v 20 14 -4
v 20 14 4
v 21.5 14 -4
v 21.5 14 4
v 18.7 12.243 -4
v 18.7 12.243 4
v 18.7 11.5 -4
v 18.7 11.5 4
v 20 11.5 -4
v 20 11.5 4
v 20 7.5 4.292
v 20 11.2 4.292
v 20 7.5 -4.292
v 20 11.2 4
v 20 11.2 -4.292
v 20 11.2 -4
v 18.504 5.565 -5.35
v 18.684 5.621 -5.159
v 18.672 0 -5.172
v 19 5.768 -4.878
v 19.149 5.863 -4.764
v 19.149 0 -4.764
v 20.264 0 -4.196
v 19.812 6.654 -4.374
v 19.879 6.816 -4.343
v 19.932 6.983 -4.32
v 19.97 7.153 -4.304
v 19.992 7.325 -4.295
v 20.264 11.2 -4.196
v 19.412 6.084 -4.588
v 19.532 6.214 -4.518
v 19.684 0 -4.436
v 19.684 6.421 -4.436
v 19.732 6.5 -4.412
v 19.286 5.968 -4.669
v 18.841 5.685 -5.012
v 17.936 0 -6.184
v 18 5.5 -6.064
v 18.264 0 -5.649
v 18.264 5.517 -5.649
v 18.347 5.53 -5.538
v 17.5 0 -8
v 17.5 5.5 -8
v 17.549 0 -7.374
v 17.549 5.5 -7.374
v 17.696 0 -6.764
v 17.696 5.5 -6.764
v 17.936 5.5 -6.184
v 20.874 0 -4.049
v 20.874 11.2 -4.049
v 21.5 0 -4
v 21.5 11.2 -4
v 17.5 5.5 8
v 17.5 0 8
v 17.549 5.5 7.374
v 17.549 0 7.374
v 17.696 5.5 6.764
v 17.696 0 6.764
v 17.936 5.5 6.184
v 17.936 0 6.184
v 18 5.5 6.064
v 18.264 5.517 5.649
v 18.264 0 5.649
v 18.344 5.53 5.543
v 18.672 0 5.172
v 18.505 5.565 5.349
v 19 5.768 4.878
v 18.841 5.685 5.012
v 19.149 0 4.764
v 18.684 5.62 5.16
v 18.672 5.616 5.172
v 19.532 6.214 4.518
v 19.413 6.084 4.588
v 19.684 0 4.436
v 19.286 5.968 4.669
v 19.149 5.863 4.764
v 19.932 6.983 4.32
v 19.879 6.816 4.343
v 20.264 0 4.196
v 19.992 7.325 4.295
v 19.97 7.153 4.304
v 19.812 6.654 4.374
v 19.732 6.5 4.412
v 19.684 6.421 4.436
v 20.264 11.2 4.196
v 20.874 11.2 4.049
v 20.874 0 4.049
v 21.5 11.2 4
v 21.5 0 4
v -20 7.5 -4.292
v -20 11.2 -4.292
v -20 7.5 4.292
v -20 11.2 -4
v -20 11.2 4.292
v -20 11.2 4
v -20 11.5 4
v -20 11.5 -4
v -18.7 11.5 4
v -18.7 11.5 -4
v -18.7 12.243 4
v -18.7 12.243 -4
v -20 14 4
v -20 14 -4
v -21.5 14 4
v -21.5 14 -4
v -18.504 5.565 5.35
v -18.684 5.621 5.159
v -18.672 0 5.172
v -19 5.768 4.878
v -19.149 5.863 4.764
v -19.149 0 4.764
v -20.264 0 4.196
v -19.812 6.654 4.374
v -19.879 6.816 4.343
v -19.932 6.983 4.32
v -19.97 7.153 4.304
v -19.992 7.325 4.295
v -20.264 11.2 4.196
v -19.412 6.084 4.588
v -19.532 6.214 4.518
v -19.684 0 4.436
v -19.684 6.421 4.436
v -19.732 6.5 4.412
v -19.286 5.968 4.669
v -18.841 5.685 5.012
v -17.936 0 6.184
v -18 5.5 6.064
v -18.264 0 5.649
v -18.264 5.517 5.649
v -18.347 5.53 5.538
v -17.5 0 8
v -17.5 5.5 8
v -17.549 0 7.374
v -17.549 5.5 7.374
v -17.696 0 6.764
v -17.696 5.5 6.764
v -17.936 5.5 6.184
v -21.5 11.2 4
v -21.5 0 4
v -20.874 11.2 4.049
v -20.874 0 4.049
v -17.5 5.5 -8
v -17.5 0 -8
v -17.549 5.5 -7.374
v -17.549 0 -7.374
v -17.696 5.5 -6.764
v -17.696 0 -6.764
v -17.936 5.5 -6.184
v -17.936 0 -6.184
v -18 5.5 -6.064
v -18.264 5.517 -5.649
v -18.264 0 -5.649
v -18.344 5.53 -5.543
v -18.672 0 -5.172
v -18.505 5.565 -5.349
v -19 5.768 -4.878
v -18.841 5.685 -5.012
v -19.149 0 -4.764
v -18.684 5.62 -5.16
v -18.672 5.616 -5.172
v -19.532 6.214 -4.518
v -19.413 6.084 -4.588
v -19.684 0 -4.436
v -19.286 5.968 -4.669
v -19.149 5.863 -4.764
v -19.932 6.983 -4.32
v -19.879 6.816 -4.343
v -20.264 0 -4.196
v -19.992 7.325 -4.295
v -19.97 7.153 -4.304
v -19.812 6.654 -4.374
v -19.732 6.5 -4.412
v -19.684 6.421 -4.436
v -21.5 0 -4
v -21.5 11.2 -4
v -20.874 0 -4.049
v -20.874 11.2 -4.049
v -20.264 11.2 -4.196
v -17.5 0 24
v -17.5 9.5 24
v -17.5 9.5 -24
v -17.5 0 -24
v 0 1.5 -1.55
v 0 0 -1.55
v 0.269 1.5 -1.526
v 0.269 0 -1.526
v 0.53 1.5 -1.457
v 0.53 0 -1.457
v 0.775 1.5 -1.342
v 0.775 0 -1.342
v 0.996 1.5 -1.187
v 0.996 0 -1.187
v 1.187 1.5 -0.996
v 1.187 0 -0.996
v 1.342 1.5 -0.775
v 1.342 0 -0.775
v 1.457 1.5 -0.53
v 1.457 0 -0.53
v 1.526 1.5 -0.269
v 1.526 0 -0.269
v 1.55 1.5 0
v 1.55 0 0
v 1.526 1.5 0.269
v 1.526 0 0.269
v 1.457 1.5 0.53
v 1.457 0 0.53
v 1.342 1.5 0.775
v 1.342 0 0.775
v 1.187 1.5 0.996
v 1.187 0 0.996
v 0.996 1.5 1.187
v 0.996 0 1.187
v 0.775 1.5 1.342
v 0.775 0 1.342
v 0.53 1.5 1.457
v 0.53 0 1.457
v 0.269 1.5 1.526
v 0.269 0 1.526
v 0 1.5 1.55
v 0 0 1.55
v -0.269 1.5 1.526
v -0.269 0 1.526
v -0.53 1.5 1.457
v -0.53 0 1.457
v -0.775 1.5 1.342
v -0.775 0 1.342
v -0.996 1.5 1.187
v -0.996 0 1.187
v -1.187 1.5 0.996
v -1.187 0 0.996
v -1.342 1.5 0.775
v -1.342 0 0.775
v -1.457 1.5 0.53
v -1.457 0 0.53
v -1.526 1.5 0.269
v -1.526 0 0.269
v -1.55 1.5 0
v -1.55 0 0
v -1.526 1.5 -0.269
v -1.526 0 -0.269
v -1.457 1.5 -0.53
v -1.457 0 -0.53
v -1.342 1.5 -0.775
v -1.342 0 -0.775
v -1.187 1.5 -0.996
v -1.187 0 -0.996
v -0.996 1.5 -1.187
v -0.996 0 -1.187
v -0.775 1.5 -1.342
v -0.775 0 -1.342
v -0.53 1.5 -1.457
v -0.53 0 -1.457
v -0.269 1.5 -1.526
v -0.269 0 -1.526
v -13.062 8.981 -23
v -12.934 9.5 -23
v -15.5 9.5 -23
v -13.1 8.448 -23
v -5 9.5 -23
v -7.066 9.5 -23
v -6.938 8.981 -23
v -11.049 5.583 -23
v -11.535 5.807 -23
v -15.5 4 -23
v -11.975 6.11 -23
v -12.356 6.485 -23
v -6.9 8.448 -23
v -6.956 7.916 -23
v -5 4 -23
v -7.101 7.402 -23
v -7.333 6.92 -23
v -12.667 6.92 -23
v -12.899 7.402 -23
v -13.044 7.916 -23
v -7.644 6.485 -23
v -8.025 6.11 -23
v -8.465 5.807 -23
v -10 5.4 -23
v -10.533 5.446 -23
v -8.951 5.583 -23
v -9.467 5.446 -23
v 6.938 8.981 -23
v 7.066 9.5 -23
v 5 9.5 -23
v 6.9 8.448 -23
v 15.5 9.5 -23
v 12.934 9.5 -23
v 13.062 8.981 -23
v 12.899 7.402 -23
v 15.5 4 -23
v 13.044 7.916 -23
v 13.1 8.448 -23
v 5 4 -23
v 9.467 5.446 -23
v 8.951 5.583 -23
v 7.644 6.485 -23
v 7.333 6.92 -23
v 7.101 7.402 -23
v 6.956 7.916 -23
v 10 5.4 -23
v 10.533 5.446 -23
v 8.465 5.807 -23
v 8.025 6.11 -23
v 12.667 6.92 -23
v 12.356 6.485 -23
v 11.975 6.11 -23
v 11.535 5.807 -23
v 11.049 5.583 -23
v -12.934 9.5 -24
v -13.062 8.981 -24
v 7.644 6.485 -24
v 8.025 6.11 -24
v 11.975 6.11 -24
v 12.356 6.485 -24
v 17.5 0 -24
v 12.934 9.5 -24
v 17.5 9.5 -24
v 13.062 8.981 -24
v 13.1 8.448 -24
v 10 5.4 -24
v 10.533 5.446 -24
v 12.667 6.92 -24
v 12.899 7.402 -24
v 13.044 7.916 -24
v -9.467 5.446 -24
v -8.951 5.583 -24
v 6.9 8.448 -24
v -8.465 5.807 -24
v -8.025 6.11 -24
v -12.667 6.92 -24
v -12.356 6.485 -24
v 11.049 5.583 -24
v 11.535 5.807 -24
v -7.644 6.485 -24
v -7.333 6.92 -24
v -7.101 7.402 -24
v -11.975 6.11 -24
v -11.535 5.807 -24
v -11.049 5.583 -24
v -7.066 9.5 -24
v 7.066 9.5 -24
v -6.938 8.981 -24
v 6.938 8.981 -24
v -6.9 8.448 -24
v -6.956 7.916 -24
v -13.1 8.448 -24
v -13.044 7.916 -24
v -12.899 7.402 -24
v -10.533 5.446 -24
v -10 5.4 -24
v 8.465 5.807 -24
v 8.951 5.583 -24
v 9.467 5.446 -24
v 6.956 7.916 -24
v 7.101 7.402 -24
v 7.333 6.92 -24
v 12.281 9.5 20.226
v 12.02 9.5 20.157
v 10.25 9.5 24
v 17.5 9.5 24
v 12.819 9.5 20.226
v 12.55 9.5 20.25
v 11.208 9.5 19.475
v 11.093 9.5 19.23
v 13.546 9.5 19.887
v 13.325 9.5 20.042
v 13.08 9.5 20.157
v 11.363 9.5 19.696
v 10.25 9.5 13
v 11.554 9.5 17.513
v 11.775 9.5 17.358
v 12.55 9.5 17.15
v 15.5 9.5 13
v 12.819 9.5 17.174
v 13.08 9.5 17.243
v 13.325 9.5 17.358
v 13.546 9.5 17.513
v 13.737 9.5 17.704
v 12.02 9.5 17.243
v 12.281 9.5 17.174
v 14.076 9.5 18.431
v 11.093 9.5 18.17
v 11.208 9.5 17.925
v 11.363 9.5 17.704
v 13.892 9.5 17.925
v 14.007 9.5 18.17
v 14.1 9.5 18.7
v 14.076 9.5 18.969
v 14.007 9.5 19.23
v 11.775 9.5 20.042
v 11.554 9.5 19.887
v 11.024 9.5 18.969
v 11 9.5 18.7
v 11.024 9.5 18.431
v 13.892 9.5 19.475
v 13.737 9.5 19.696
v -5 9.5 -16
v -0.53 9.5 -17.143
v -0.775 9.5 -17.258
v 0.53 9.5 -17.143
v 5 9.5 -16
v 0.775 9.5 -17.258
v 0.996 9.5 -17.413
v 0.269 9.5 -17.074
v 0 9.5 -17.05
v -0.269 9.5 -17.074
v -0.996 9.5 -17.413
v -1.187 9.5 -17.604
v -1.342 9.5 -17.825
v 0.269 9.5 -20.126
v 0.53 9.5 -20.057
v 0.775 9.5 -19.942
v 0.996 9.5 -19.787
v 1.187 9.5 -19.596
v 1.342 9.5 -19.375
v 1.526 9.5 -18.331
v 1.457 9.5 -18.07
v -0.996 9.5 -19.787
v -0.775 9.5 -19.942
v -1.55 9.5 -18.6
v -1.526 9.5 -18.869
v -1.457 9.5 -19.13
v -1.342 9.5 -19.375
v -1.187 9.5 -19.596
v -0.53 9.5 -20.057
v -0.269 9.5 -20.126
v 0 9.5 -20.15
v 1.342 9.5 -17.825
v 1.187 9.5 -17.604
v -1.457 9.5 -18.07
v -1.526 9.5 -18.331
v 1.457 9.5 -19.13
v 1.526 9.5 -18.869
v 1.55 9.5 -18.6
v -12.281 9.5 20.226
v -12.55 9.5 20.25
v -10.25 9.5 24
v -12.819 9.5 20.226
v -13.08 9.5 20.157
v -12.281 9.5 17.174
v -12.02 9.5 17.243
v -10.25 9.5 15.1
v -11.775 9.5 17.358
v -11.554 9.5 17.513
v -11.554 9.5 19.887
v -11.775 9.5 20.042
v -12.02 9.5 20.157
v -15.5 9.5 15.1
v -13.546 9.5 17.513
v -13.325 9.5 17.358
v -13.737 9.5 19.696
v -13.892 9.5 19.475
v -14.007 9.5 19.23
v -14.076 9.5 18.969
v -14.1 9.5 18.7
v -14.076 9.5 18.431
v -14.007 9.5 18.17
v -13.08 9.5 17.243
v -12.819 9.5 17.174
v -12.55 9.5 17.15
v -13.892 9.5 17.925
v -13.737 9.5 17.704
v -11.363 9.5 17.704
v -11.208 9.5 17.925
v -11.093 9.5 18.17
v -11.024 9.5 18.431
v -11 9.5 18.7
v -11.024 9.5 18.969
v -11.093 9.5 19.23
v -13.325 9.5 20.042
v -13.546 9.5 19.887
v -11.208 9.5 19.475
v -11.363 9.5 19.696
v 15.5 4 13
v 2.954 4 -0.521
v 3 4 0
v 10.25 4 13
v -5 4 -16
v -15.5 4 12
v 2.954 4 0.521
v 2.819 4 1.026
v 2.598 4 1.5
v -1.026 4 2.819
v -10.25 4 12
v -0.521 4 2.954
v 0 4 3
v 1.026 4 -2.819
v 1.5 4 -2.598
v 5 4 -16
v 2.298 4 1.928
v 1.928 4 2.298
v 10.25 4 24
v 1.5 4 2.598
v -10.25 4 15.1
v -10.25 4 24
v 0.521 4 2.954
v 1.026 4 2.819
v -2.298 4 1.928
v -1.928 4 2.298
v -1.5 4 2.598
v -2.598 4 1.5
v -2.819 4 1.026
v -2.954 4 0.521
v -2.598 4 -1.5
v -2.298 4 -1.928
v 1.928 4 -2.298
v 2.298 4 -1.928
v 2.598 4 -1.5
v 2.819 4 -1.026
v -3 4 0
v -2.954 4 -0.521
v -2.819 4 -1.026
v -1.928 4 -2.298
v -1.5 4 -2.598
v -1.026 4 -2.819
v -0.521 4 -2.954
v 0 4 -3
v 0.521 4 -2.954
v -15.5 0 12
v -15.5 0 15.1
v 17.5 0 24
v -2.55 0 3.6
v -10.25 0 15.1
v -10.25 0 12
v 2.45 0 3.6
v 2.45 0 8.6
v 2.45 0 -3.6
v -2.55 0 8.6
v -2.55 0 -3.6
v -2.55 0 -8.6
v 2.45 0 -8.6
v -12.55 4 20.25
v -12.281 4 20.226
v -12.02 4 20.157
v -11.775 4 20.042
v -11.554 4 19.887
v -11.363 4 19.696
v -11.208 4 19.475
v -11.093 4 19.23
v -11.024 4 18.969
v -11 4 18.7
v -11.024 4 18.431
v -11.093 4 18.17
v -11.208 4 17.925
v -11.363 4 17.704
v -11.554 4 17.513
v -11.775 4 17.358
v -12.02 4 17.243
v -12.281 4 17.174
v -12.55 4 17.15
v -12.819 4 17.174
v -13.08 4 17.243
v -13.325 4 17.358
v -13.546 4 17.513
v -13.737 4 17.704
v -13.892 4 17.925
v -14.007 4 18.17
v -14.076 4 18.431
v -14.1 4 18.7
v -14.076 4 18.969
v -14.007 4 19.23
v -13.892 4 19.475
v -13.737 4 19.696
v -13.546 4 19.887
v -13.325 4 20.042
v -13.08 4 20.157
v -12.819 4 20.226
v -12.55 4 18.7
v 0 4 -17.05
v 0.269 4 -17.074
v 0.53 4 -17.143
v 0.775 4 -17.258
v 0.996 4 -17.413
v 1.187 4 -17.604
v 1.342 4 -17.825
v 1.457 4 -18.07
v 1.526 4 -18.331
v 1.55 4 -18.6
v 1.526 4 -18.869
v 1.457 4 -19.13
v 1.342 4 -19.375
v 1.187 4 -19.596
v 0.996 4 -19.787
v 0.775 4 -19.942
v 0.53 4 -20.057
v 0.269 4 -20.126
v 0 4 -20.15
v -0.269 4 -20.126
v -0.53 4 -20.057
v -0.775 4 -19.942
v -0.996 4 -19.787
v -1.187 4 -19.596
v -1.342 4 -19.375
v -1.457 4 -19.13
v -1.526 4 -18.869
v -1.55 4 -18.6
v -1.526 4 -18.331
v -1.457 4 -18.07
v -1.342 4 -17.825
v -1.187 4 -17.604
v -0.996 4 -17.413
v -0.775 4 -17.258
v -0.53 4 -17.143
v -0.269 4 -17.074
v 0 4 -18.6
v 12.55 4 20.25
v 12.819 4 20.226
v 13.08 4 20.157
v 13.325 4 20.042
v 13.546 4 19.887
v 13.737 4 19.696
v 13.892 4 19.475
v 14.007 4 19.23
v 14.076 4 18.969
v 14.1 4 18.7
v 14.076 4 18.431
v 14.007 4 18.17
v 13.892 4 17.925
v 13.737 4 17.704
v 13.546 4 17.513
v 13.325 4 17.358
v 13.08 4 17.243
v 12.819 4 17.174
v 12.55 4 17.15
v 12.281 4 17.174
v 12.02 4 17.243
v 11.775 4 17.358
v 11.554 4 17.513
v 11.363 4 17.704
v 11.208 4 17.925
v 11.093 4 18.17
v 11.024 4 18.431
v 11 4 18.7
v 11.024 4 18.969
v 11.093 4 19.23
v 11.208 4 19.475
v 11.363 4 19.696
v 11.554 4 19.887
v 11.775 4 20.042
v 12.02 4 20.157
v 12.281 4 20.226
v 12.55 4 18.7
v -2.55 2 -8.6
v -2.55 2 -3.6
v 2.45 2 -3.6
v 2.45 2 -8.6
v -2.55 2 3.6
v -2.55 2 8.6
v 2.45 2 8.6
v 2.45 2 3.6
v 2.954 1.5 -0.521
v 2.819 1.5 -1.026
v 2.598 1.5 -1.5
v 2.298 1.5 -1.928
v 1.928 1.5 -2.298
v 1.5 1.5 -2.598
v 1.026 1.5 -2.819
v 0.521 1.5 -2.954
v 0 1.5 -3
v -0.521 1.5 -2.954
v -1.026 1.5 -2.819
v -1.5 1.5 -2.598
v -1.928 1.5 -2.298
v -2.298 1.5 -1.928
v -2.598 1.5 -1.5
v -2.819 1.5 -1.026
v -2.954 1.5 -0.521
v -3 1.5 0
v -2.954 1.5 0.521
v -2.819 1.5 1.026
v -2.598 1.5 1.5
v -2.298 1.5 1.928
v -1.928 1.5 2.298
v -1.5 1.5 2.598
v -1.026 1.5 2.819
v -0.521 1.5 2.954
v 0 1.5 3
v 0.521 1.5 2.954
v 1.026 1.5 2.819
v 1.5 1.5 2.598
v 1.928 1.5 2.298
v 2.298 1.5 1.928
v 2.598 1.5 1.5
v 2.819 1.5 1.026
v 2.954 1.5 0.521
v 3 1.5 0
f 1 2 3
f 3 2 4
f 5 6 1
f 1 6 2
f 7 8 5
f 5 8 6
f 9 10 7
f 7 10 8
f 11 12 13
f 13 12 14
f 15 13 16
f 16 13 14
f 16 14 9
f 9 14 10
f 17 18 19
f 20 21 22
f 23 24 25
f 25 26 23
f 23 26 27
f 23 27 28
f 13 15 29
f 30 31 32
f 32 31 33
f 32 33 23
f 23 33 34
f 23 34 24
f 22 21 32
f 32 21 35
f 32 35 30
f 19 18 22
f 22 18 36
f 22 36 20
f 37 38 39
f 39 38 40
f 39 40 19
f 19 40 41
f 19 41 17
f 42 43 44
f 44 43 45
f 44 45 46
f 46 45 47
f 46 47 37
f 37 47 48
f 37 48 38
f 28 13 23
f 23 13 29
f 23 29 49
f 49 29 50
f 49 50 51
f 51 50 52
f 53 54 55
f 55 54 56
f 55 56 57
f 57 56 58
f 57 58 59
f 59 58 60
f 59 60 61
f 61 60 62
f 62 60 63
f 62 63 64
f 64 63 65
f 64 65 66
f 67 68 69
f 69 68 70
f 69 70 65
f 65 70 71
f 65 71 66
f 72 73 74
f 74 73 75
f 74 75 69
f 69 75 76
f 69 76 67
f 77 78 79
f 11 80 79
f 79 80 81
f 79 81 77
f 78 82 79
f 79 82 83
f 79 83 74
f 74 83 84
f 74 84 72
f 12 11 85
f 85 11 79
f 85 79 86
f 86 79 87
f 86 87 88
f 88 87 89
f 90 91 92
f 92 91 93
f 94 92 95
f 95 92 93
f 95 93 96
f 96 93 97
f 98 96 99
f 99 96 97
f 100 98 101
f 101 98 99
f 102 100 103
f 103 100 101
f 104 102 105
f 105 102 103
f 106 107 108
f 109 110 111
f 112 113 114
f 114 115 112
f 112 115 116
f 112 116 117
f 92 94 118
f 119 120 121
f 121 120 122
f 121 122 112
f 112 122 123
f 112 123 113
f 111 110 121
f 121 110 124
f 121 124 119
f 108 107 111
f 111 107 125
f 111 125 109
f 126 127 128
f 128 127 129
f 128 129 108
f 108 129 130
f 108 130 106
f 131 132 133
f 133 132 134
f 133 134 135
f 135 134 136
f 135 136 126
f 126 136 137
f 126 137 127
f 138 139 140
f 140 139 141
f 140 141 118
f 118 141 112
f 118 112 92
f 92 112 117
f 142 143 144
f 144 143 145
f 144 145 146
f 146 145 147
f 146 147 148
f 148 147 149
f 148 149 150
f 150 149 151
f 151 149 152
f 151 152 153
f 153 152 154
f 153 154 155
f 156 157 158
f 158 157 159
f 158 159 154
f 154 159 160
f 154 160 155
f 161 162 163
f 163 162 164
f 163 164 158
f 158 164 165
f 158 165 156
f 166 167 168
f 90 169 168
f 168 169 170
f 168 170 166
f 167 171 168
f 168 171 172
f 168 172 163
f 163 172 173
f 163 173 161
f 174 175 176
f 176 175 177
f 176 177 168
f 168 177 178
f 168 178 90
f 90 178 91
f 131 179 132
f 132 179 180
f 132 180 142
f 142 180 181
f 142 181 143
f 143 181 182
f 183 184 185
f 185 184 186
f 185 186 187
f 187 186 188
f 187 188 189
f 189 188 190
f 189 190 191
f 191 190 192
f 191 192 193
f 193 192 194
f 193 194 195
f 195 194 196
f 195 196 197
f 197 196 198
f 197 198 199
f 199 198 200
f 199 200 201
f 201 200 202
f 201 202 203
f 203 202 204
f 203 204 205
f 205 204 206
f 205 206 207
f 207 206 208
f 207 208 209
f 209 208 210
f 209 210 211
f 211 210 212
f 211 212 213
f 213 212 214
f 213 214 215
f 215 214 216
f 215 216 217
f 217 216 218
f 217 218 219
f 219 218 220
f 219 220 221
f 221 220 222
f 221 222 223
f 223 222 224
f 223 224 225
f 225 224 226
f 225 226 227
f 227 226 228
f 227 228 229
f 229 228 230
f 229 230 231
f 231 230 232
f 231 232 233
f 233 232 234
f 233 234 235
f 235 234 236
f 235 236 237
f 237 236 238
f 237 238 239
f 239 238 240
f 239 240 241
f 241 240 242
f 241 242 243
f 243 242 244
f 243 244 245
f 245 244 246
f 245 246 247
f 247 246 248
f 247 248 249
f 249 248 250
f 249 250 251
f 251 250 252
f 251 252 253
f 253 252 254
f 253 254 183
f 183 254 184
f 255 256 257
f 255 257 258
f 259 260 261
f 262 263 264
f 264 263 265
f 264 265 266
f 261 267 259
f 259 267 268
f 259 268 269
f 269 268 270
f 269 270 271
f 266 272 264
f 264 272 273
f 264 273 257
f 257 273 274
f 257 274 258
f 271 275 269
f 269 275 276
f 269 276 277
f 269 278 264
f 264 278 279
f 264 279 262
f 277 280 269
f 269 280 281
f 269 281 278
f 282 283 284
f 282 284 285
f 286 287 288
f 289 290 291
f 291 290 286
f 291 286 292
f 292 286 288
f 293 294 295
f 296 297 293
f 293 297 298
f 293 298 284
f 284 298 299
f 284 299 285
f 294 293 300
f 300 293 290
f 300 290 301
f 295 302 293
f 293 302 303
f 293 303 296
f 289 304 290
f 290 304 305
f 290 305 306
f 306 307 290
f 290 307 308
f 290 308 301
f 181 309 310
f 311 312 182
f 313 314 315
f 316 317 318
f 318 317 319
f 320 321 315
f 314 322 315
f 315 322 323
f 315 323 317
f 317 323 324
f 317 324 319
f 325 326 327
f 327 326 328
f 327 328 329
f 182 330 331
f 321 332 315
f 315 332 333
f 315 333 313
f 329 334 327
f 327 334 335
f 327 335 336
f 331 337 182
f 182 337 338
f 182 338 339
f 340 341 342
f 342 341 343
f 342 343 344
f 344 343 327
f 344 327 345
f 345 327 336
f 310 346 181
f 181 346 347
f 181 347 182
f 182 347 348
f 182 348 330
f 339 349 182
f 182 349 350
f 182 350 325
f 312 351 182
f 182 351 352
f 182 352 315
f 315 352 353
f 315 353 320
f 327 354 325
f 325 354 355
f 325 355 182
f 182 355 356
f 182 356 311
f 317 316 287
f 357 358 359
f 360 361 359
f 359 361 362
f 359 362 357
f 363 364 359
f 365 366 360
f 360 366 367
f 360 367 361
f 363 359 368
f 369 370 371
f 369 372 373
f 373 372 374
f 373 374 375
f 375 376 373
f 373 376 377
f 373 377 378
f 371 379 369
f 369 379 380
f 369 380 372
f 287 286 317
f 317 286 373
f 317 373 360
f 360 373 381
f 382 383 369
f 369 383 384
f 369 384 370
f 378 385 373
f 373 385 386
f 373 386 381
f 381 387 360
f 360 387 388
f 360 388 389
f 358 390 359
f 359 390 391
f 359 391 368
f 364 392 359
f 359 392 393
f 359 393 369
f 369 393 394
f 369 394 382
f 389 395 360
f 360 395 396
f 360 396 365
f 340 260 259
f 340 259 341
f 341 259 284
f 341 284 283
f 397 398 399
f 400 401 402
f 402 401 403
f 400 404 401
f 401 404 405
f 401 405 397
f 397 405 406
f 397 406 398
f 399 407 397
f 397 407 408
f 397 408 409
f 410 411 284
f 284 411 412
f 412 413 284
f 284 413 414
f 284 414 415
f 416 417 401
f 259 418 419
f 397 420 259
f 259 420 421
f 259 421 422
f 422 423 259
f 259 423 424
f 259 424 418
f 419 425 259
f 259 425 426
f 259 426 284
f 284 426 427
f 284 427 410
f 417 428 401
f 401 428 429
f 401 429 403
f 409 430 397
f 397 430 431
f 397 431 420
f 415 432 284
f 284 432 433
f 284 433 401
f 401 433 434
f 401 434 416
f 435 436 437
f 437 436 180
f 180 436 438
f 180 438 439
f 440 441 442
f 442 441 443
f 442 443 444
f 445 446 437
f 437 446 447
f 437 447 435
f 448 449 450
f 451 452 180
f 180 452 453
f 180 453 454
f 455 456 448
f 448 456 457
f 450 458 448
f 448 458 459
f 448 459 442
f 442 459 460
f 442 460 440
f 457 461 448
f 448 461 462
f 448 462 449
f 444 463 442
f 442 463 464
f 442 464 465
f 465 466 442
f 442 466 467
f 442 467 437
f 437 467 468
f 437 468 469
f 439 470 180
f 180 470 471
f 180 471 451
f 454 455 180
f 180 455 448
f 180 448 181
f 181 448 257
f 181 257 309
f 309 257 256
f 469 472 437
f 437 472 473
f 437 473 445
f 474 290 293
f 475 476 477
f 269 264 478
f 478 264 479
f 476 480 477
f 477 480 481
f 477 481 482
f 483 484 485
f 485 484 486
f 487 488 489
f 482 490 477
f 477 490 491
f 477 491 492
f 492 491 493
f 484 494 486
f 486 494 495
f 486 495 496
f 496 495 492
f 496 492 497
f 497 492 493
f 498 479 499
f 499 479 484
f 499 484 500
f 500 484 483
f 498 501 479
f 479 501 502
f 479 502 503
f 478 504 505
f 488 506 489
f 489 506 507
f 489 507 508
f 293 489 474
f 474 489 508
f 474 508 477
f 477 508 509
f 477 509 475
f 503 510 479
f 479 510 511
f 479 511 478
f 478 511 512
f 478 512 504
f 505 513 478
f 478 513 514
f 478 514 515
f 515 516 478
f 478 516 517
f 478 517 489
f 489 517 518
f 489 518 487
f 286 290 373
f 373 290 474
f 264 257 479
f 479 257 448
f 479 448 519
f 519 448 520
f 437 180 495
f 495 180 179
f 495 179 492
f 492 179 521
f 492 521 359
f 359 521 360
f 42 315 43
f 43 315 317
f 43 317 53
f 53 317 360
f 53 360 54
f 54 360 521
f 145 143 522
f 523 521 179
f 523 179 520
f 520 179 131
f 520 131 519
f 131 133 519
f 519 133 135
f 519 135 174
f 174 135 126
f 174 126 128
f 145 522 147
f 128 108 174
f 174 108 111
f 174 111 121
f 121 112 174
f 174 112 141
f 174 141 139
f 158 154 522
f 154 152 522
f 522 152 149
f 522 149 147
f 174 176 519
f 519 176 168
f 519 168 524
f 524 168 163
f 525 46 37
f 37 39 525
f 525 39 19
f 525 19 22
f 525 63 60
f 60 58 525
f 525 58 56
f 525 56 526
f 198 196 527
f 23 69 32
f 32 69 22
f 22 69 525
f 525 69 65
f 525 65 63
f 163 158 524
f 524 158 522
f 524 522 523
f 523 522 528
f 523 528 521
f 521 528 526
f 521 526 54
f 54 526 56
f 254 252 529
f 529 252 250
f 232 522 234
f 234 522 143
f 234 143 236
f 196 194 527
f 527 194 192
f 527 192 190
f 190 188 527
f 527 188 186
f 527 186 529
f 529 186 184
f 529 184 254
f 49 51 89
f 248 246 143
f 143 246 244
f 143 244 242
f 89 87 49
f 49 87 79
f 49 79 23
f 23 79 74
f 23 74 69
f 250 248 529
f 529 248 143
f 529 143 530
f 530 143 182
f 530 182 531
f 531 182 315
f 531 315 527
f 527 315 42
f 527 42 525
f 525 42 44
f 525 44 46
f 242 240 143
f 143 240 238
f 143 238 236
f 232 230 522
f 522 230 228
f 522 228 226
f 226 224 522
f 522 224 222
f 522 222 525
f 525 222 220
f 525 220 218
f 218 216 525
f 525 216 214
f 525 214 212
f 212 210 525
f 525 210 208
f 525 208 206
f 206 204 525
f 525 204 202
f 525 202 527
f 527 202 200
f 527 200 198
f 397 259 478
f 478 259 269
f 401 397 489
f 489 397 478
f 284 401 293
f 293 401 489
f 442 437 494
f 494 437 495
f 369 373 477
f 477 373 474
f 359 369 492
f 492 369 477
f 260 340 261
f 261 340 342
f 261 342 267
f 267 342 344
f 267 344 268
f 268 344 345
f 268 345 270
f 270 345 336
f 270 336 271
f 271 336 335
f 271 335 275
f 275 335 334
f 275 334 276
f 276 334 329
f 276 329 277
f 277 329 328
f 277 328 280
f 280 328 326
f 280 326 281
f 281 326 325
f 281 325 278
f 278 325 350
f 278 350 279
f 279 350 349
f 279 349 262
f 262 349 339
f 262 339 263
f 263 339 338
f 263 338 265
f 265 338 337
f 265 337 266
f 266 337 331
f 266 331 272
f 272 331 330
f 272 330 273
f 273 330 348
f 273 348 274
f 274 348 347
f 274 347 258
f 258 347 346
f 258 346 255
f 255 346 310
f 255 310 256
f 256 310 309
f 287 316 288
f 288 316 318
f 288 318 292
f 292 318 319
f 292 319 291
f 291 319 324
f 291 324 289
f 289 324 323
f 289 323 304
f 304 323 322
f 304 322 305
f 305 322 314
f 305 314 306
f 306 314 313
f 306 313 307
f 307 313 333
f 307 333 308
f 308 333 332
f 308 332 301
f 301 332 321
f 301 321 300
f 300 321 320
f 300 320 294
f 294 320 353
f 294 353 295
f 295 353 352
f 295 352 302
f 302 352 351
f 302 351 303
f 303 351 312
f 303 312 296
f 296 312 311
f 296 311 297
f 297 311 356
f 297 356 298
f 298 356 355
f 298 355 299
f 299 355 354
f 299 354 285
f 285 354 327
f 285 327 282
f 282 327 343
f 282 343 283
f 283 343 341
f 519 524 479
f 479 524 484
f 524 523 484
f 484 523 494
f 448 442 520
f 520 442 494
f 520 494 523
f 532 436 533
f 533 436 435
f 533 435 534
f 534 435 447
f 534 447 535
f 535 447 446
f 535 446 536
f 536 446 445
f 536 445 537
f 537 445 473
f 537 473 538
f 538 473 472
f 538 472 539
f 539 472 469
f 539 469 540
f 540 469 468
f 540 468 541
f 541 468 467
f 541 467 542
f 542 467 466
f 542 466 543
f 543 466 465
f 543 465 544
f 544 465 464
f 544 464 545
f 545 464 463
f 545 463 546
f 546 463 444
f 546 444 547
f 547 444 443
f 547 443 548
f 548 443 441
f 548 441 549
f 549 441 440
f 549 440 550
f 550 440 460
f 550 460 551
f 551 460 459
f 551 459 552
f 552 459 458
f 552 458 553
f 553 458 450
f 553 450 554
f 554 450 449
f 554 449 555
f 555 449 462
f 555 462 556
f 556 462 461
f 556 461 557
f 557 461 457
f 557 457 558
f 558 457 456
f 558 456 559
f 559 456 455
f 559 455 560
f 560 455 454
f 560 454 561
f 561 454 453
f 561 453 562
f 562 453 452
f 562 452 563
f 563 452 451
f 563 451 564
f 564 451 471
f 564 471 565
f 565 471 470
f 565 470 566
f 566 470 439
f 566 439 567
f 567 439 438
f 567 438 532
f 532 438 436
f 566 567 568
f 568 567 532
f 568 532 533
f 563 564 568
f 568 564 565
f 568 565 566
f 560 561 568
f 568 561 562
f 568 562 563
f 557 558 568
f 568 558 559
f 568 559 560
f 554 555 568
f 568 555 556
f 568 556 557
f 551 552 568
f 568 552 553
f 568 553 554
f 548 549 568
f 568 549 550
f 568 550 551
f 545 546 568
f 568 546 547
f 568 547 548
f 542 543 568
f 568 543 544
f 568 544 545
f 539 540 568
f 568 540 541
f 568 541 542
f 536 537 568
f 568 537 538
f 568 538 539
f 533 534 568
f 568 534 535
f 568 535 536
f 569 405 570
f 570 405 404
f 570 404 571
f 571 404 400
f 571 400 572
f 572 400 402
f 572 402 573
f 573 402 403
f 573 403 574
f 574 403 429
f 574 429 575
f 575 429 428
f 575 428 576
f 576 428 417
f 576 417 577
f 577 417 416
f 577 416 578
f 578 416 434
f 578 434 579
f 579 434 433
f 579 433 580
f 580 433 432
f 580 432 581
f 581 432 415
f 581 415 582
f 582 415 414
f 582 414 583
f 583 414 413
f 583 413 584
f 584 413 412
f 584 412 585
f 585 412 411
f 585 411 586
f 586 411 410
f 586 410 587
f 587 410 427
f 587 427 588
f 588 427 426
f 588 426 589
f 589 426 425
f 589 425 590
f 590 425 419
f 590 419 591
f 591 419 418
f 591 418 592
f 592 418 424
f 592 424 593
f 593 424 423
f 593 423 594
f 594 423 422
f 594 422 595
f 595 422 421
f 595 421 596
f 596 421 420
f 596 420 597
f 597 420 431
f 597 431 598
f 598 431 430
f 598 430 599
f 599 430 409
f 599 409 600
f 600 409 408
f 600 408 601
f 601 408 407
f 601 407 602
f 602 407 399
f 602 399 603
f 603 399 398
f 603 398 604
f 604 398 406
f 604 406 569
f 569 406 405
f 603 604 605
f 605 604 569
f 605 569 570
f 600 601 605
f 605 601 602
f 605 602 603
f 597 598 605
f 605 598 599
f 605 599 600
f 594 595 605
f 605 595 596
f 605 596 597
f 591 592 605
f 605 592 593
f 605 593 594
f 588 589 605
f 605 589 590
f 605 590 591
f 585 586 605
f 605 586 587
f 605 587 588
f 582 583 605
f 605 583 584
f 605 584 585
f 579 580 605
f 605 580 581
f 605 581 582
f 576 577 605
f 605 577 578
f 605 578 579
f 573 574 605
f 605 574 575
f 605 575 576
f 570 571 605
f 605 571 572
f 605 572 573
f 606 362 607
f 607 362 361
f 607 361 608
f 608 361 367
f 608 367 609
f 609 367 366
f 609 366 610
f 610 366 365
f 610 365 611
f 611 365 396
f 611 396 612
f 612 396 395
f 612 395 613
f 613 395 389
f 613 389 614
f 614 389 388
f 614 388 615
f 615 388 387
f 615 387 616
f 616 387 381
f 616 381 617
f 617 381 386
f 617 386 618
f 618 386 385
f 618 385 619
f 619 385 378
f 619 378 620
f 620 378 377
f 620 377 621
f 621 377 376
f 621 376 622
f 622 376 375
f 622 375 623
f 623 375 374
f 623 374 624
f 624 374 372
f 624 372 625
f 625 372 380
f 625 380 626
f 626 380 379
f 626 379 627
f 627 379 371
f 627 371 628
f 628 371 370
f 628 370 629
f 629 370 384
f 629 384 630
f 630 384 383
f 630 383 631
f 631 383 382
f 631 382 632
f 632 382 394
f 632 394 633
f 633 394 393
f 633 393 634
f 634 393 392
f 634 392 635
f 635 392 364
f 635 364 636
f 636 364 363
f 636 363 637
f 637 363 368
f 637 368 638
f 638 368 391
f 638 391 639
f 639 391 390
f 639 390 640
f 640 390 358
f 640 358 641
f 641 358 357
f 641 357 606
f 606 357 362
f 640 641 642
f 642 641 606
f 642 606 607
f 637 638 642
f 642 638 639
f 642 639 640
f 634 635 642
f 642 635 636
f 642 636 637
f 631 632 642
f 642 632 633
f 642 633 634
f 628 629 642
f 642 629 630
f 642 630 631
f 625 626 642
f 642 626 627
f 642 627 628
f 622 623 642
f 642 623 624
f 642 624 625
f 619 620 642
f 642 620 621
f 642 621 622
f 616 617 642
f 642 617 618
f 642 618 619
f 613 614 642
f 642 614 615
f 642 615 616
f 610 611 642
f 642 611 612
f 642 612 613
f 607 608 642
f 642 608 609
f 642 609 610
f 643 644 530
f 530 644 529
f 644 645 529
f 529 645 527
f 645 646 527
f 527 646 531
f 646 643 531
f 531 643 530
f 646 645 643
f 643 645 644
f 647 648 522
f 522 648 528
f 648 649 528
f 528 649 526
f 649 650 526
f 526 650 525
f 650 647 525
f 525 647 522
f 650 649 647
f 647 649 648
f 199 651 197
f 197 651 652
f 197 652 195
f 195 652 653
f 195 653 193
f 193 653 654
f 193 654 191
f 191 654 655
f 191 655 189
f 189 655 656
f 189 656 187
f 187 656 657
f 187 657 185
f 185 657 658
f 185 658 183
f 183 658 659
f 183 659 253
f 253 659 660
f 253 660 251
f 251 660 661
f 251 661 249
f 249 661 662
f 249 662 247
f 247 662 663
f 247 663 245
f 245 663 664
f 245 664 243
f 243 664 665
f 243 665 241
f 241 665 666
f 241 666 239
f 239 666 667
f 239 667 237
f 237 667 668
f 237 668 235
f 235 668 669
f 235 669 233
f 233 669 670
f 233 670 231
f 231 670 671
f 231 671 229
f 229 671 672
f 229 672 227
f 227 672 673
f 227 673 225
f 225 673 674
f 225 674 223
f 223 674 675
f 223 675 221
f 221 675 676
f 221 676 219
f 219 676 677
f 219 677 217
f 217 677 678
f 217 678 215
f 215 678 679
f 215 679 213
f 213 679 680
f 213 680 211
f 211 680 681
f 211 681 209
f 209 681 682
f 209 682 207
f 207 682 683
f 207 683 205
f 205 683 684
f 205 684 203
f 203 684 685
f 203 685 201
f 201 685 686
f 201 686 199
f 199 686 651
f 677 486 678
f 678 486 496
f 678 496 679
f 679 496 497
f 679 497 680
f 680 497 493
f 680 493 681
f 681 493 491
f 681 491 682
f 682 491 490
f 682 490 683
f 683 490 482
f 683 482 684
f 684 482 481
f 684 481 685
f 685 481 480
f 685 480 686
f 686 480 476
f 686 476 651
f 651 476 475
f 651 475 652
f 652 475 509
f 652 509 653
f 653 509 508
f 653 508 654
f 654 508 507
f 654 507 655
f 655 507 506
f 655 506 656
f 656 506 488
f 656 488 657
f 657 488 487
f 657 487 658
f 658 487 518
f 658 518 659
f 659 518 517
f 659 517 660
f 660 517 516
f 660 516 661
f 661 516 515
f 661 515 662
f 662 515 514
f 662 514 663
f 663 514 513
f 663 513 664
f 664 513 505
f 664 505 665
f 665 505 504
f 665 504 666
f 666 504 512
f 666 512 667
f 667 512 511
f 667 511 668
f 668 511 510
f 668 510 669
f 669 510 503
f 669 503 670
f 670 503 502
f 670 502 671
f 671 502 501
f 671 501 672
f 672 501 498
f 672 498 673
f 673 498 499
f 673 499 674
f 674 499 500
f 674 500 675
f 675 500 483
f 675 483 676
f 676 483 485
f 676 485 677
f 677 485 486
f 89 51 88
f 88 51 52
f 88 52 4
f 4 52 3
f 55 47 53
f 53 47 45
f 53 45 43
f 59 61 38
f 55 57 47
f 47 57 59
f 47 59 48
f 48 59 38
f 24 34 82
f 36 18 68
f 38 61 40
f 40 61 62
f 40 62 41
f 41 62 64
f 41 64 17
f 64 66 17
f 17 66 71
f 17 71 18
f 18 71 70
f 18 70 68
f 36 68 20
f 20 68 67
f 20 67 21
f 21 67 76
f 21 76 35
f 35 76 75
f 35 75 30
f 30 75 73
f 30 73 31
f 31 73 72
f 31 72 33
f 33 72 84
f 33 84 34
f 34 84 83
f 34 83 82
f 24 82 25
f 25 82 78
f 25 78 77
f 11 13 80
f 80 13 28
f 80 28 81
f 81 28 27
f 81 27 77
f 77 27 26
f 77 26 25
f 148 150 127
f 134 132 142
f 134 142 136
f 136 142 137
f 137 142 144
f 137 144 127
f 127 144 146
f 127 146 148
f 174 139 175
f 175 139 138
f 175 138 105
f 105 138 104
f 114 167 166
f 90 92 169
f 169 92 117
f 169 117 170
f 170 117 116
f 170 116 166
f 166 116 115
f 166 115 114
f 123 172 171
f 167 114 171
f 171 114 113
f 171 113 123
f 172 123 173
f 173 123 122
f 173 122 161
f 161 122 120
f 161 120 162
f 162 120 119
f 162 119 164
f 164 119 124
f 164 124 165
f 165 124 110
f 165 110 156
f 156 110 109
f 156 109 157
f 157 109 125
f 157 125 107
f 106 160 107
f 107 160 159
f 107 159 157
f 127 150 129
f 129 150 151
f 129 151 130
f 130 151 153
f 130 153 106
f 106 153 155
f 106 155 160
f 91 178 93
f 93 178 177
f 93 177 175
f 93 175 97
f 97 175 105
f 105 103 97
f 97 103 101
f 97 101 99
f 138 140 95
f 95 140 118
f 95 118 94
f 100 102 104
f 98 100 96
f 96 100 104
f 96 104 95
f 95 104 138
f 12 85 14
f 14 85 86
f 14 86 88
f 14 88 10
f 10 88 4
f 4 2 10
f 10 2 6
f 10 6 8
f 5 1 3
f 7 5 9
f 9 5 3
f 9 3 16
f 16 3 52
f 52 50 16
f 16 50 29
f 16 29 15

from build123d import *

# Parameters (mm, degrees)
SKETCH1_W           = 35
SKETCH1_H           = 48
BOSS_EXTRUDE1_DEPTH = 4
SKETCH2_W           = 35
SKETCH2_H           = 48
SKETCH2_W_2         = 31
SKETCH2_H_2         = 44
BOSS_EXTRUDE2_DEPTH = 5.5
SKETCH3_W           = 10
SKETCH3_H           = 7
SKETCH3_W_2         = 5.25
SKETCH3_H_2         = 8
BOSS_EXTRUDE3_DEPTH = 5.5
SKETCH4_W           = 20.5
SKETCH4_H           = 5.5
CUT_EXTRUDE1_DEPTH  = 11
CUT_EXTRUDE2_DEPTH  = 2
CUT_EXTRUDE3_REACH  = 33.185
SKETCH7_W           = 5.25
SKETCH7_H           = 3.1
CUT_EXTRUDE4_START  = 9.5
SKETCH8_R           = 1.55
CUT_EXTRUDE4_DEPTH  = 5.5
SKETCH5_W           = 5
SKETCH5_H           = 5
CUT_EXTRUDE5_DEPTH  = 2
SKETCH10_R          = 1.55
CUT_EXTRUDE6_DEPTH  = 4
SKETCH11_R          = 3
CUT_EXTRUDE7_DEPTH  = 2.5
BOSS_EXTRUDE5_DEPTH = 4
FILLET1_R           = 4
FILLET2_R           = 2
FILLET3_R           = 4
FILLET4_R           = 2
SKETCH14_W          = 45
SKETCH14_H          = 12
CUT_EXTRUDE11_DEPTH = 2.8


with BuildPart() as part:
    # Sketch1 → Boss-Extrude1 (new body)
    with BuildSketch(Plane(origin=(0, 0, 0), x_dir=(1, 0, 0), z_dir=(0, 1, 0))):
        Rectangle(SKETCH1_W, SKETCH1_H)
    extrude(amount=BOSS_EXTRUDE1_DEPTH)

    # Sketch2 → Boss-Extrude2 (add)
    with BuildSketch(Plane(origin=(0, 4, 0), x_dir=(1, 0, 0), z_dir=(0, 1, 0))):
        Rectangle(SKETCH2_W, SKETCH2_H)
        with Locations((0, 1)):
            Rectangle(SKETCH2_W_2, SKETCH2_H_2, mode=Mode.SUBTRACT)
    extrude(amount=BOSS_EXTRUDE2_DEPTH)

    # Sketch3 → Boss-Extrude3 (add)
    with BuildSketch(Plane(origin=(0, 4, 0), x_dir=(1, 0, 0), z_dir=(0, 1, 0))):
        with Locations((0, 19.5)):
            Rectangle(SKETCH3_W, SKETCH3_H)
        with Locations((-12.875, -17)):
            Rectangle(SKETCH3_W_2, SKETCH3_H_2)
        with Locations((12.875, -17)):
            Rectangle(SKETCH3_W_2, SKETCH3_H_2)
    extrude(amount=BOSS_EXTRUDE3_DEPTH)

    # Sketch4 → Cut-Extrude1 (cut)
    with BuildSketch(Plane.XY.offset(24)):
        with Locations((0, 6.75)):
            Rectangle(SKETCH4_W, SKETCH4_H)
    extrude(amount=-CUT_EXTRUDE1_DEPTH, mode=Mode.SUBTRACT)

    # Sketch6 → Cut-Extrude2 (cut)
    with BuildSketch(Plane(origin=(0, 0, -24), x_dir=(-1, 0, 0), z_dir=(0, 0, -1))):
        with BuildLine():
            ThreePointArc((-12.93428015, 9.5), (-10, 5.4), (-7.06571985, 9.5))
            Line((-7.06571985, 9.5), (-12.93428015, 9.5))
        make_face()
        with BuildLine():
            Line((12.93428015, 9.5), (7.06571985, 9.5))
            ThreePointArc((7.06571985, 9.5), (10, 5.4), (12.93428015, 9.5))
        make_face()
    extrude(amount=-CUT_EXTRUDE2_DEPTH, mode=Mode.SUBTRACT)

    # Cut-Extrude3: up to this face of the body (flat: up to its plane)
    cut_extrude3_end = Plane(part.part.faces().sort_by_distance((0, 0, 0))[0])
    # Sketch7 → Cut-Extrude3 (cut, up to the picked face)
    with BuildSketch(Plane(origin=(0, 9.5, 0), x_dir=(1, 0, 0), z_dir=(0, 1, 0)), mode=Mode.PRIVATE) as cut_extrude3_sk1:
        with Locations((-12.875, -13.55)):
            Rectangle(SKETCH7_W, SKETCH7_H)
    cut_extrude3_tool1 = split(extrude(cut_extrude3_sk1.sketch, amount=-CUT_EXTRUDE3_REACH, mode=Mode.PRIVATE), bisect_by=cut_extrude3_end, keep=Keep.BOTH, mode=Mode.PRIVATE)
    add(cut_extrude3_tool1.solids().sort_by(Axis((-12.875, 9.5, 13.55), (0, -1, 0)))[0], mode=Mode.SUBTRACT)

    # Sketch8 → Cut-Extrude4 (cut)
    with BuildSketch(Plane(origin=(0, 0, 0), x_dir=(1, 0, 0), z_dir=(0, 1, 0)).offset(CUT_EXTRUDE4_START)):
        with Locations(Location((-12.55, -18.7, 0), (0, 0, 270))):
            Circle(SKETCH8_R)
        with Locations(Location((12.55, -18.7, 0), (0, 0, 270))):
            Circle(SKETCH8_R)
        with Locations(Location((0, 18.6, 0), (0, 0, 270))):
            Circle(SKETCH8_R)
    extrude(amount=-CUT_EXTRUDE4_DEPTH, mode=Mode.SUBTRACT)

    # Sketch5 → Cut-Extrude5 (cut)
    with BuildSketch(Plane.XZ):
        with Locations((-0.05, 6.1)):
            Rectangle(SKETCH5_W, SKETCH5_H)
        with Locations((-0.05, -6.1)):
            Rectangle(SKETCH5_W, SKETCH5_H)
    extrude(amount=-CUT_EXTRUDE5_DEPTH, mode=Mode.SUBTRACT)

    # Sketch10 → Cut-Extrude6 (cut)
    with BuildSketch(Plane.XZ):
        with Locations(Location((0, 0, 0), (0, 0, 270))):
            Circle(SKETCH10_R)
    extrude(amount=-CUT_EXTRUDE6_DEPTH, mode=Mode.SUBTRACT)

    # Sketch11 → Cut-Extrude7 (cut)
    with BuildSketch(Plane(origin=(0, 4, 0), x_dir=(1, 0, 0), z_dir=(0, 1, 0))):
        with Locations(Location((0, 0, 0), (0, 0, 270))):
            Circle(SKETCH11_R)
    extrude(amount=-CUT_EXTRUDE7_DEPTH, mode=Mode.SUBTRACT)

    # Sketch13 → Boss-Extrude5 (add, symmetric)
    with BuildSketch(Plane.XY):
        Polygon((17.5, 0), (21.5, 0), (21.5, 14), (20, 14), (18.7, 12.243021796), (18.7, 11.5), (20, 11.5), (20, 5.5), (17.5, 5.5), align=None)
    boss_extrude5 = extrude(amount=BOSS_EXTRUDE5_DEPTH, both=True)

    # Fillet1
    # the kernel refuses this fillet: 4 mm, written as the material it adds along each edge
    with BuildSketch(Plane(origin=(17.5, 15.5, -4), x_dir=(0, 0, -1), z_dir=(0, -1, 0))) as fillet1_piece_1_section:
        with BuildLine():
            CenterArc((FILLET1_R, FILLET1_R), FILLET1_R, 180, 90)
            Line((0, FILLET1_R), (0, 0))
            Line((0, 0), (FILLET1_R, 0))
        make_face()
    fillet1_piece_1 = extrude(amount=15.5, mode=Mode.PRIVATE)
    fillet1_piece_1 = split(fillet1_piece_1, bisect_by=Plane(origin=(20.372208791, 14, -4.086993852), z_dir=(0, -1, 0)), keep=Keep.TOP, mode=Mode.PRIVATE)
    fillet1_piece_1 = split(fillet1_piece_1, bisect_by=Plane(origin=(20, 12.75, -4.086993852), z_dir=(1, 0, 0)), keep=Keep.TOP, mode=Mode.PRIVATE)
    add(fillet1_piece_1)
    with BuildSketch(Plane(origin=(17.5, 15.5, -4), x_dir=(0, 0, -1), z_dir=(0, -1, 0))) as fillet1_piece_2_section:
        with BuildLine():
            CenterArc((FILLET1_R, FILLET1_R), FILLET1_R, 180, 90)
            Line((0, FILLET1_R), (0, 0))
            Line((0, 0), (FILLET1_R, 0))
        make_face()
    fillet1_piece_2 = extrude(amount=25.5, mode=Mode.PRIVATE)
    fillet1_piece_2 = split(fillet1_piece_2, bisect_by=Plane(origin=(18.94916854, 12.579778484, -4.333743355), z_dir=(0.8038777485339549, -0.5947945573153639, 0)), keep=Keep.TOP, mode=Mode.PRIVATE)
    fillet1_piece_2 = split(fillet1_piece_2, bisect_by=Plane(origin=(18.7, 12.297602293, -4.333743355), z_dir=(1, 0, 0)), keep=Keep.TOP, mode=Mode.PRIVATE)
    fillet1_piece_2 = split(fillet1_piece_2, bisect_by=Plane(origin=(19.330535784, 11.5, -4.333743355), z_dir=(0, 1, 0)), keep=Keep.TOP, mode=Mode.PRIVATE)
    fillet1_piece_2 = split(fillet1_piece_2, bisect_by=Plane(origin=(20, 12.297602293, -4.333743355), z_dir=(-1, 0, 0)), keep=Keep.TOP, mode=Mode.PRIVATE)
    add(fillet1_piece_2)
    with BuildSketch(Plane(origin=(17.5, 5.5, -4), x_dir=(0, 0, -1), z_dir=(0, -1, 0))) as fillet1_piece_3:
        with BuildLine():
            CenterArc((FILLET1_R, FILLET1_R), FILLET1_R, 180, 90)
            Line((0, FILLET1_R), (0, 0))
            Line((0, 0), (FILLET1_R, 0))
        make_face()
    extrude(amount=5.5)
    with BuildSketch(Plane(origin=(17.5, 15.5, 4), x_dir=(0, 0, 1), z_dir=(0, -1, 0))) as fillet1_piece_4_section:
        with BuildLine():
            CenterArc((FILLET1_R, -FILLET1_R), FILLET1_R, 90, 90)
            Line((0, -FILLET1_R), (0, 0))
            Line((0, 0), (FILLET1_R, 0))
        make_face()
    fillet1_piece_4 = extrude(amount=15.5, mode=Mode.PRIVATE)
    fillet1_piece_4 = split(fillet1_piece_4, bisect_by=Plane(origin=(20.372208791, 14, 4.086993852), z_dir=(0, -1, 0)), keep=Keep.TOP, mode=Mode.PRIVATE)
    fillet1_piece_4 = split(fillet1_piece_4, bisect_by=Plane(origin=(20, 12.75, 4.086993852), z_dir=(1, 0, 0)), keep=Keep.TOP, mode=Mode.PRIVATE)
    add(fillet1_piece_4)
    with BuildSketch(Plane(origin=(17.5, 15.5, 4), x_dir=(0, 0, 1), z_dir=(0, -1, 0))) as fillet1_piece_5_section:
        with BuildLine():
            CenterArc((FILLET1_R, -FILLET1_R), FILLET1_R, 90, 90)
            Line((0, -FILLET1_R), (0, 0))
            Line((0, 0), (FILLET1_R, 0))
        make_face()
    fillet1_piece_5 = extrude(amount=25.5, mode=Mode.PRIVATE)
    fillet1_piece_5 = split(fillet1_piece_5, bisect_by=Plane(origin=(18.94916854, 12.579778484, 4.333743355), z_dir=(0.8038777485339549, -0.5947945573153639, 0)), keep=Keep.TOP, mode=Mode.PRIVATE)
    fillet1_piece_5 = split(fillet1_piece_5, bisect_by=Plane(origin=(18.7, 12.297602293, 4.333743355), z_dir=(1, 0, 0)), keep=Keep.TOP, mode=Mode.PRIVATE)
    fillet1_piece_5 = split(fillet1_piece_5, bisect_by=Plane(origin=(19.330535784, 11.5, 4.333743355), z_dir=(0, 1, 0)), keep=Keep.TOP, mode=Mode.PRIVATE)
    fillet1_piece_5 = split(fillet1_piece_5, bisect_by=Plane(origin=(20, 12.297602293, 4.333743355), z_dir=(-1, 0, 0)), keep=Keep.TOP, mode=Mode.PRIVATE)
    add(fillet1_piece_5)
    with BuildSketch(Plane(origin=(17.5, 5.5, 4), x_dir=(0, 0, 1), z_dir=(0, -1, 0))) as fillet1_piece_6:
        with BuildLine():
            CenterArc((FILLET1_R, -FILLET1_R), FILLET1_R, 90, 90)
            Line((0, -FILLET1_R), (0, 0))
            Line((0, 0), (FILLET1_R, 0))
        make_face()
    extrude(amount=5.5)

    # Fillet2
    fillet2_edges = [part.edges().sort_by_distance(p)[0] for p in [
        (20, 5.5, 0),
    ]]
    fillet(fillet2_edges, radius=FILLET2_R)

    # Mirror4: Boss-Extrude5 across plane
    add(boss_extrude5.mirror(Plane(origin=(0, 0, 0), x_dir=(0, 0, 1), z_dir=(1, 0, 0))))

    # Fillet3
    # the kernel refuses this fillet: 4 mm, written as the material it adds along each edge
    with BuildSketch(Plane(origin=(-17.5, 15.5, 4), x_dir=(0, 0, 1), z_dir=(0, -1, 0))) as fillet3_piece_1_section:
        with BuildLine():
            CenterArc((FILLET3_R, FILLET3_R), FILLET3_R, 180, 90)
            Line((0, FILLET3_R), (0, 0))
            Line((0, 0), (FILLET3_R, 0))
        make_face()
    fillet3_piece_1 = extrude(amount=25.5, mode=Mode.PRIVATE)
    fillet3_piece_1 = split(fillet3_piece_1, bisect_by=Plane(origin=(-19.330535784, 14, 4.333743355), z_dir=(0, -1, 0)), keep=Keep.TOP, mode=Mode.PRIVATE)
    fillet3_piece_1 = split(fillet3_piece_1, bisect_by=Plane(origin=(-18.94916854, 12.579778484, 4.333743355), z_dir=(-0.8038777485339549, -0.5947945573153639, 0)), keep=Keep.TOP, mode=Mode.PRIVATE)
    fillet3_piece_1 = split(fillet3_piece_1, bisect_by=Plane(origin=(-18.7, 12.297602293, 4.333743355), z_dir=(-1, 0, 0)), keep=Keep.TOP, mode=Mode.PRIVATE)
    fillet3_piece_1 = split(fillet3_piece_1, bisect_by=Plane(origin=(-19.330535784, 11.5, 4.333743355), z_dir=(0, 1, 0)), keep=Keep.TOP, mode=Mode.PRIVATE)
    add(fillet3_piece_1)
    with BuildSketch(Plane(origin=(-17.5, 15.5, 4), x_dir=(0, 0, 1), z_dir=(0, -1, 0))) as fillet3_piece_2_section:
        with BuildLine():
            CenterArc((FILLET3_R, FILLET3_R), FILLET3_R, 180, 90)
            Line((0, FILLET3_R), (0, 0))
            Line((0, 0), (FILLET3_R, 0))
        make_face()
    fillet3_piece_2 = extrude(amount=15.5, mode=Mode.PRIVATE)
    fillet3_piece_2 = split(fillet3_piece_2, bisect_by=Plane(origin=(-20.372208791, 11.5, 4.086993852), z_dir=(0, -1, 0)), keep=Keep.TOP, mode=Mode.PRIVATE)
    fillet3_piece_2 = split(fillet3_piece_2, bisect_by=Plane(origin=(-20, 10.5, 4.086993852), z_dir=(-1, 0, 0)), keep=Keep.TOP, mode=Mode.PRIVATE)
    add(fillet3_piece_2)
    with BuildSketch(Plane(origin=(-17.5, 5.5, 4), x_dir=(0, 0, 1), z_dir=(0, -1, 0))) as fillet3_piece_3:
        with BuildLine():
            CenterArc((FILLET3_R, FILLET3_R), FILLET3_R, 180, 90)
            Line((0, FILLET3_R), (0, 0))
            Line((0, 0), (FILLET3_R, 0))
        make_face()
    extrude(amount=5.5)
    with BuildSketch(Plane(origin=(-17.5, 15.5, -4), x_dir=(0, 0, -1), z_dir=(0, -1, 0))) as fillet3_piece_4_section:
        with BuildLine():
            CenterArc((FILLET3_R, -FILLET3_R), FILLET3_R, 90, 90)
            Line((0, -FILLET3_R), (0, 0))
            Line((0, 0), (FILLET3_R, 0))
        make_face()
    fillet3_piece_4 = extrude(amount=25.5, mode=Mode.PRIVATE)
    fillet3_piece_4 = split(fillet3_piece_4, bisect_by=Plane(origin=(-19.330535784, 14, -4.333743355), z_dir=(0, -1, 0)), keep=Keep.TOP, mode=Mode.PRIVATE)
    fillet3_piece_4 = split(fillet3_piece_4, bisect_by=Plane(origin=(-18.94916854, 12.579778484, -4.333743355), z_dir=(-0.8038777485339549, -0.5947945573153639, 0)), keep=Keep.TOP, mode=Mode.PRIVATE)
    fillet3_piece_4 = split(fillet3_piece_4, bisect_by=Plane(origin=(-18.7, 12.297602293, -4.333743355), z_dir=(-1, 0, 0)), keep=Keep.TOP, mode=Mode.PRIVATE)
    fillet3_piece_4 = split(fillet3_piece_4, bisect_by=Plane(origin=(-19.330535784, 11.5, -4.333743355), z_dir=(0, 1, 0)), keep=Keep.TOP, mode=Mode.PRIVATE)
    add(fillet3_piece_4)
    with BuildSketch(Plane(origin=(-17.5, 15.5, -4), x_dir=(0, 0, -1), z_dir=(0, -1, 0))) as fillet3_piece_5_section:
        with BuildLine():
            CenterArc((FILLET3_R, -FILLET3_R), FILLET3_R, 90, 90)
            Line((0, -FILLET3_R), (0, 0))
            Line((0, 0), (FILLET3_R, 0))
        make_face()
    fillet3_piece_5 = extrude(amount=15.5, mode=Mode.PRIVATE)
    fillet3_piece_5 = split(fillet3_piece_5, bisect_by=Plane(origin=(-20.372208791, 11.5, -4.086993852), z_dir=(0, -1, 0)), keep=Keep.TOP, mode=Mode.PRIVATE)
    fillet3_piece_5 = split(fillet3_piece_5, bisect_by=Plane(origin=(-20, 10.5, -4.086993852), z_dir=(-1, 0, 0)), keep=Keep.TOP, mode=Mode.PRIVATE)
    add(fillet3_piece_5)
    with BuildSketch(Plane(origin=(-17.5, 5.5, -4), x_dir=(0, 0, -1), z_dir=(0, -1, 0))) as fillet3_piece_6:
        with BuildLine():
            CenterArc((FILLET3_R, -FILLET3_R), FILLET3_R, 90, 90)
            Line((0, -FILLET3_R), (0, 0))
            Line((0, 0), (FILLET3_R, 0))
        make_face()
    extrude(amount=5.5)

    # Fillet4
    fillet4_edges = [part.edges().sort_by_distance(p)[0] for p in [
        (-20, 5.5, 0),
    ]]
    fillet(fillet4_edges, radius=FILLET4_R)

    # Sketch14 → Cut-Extrude11 (cut)
    # profile 1 of 3: a face of its own
    with BuildSketch(Plane(origin=(0, 14, 0), x_dir=(1, 0, 0), z_dir=(0, 1, 0))):
        Rectangle(SKETCH14_W, SKETCH14_H)
        with BuildLine():
            Line((-21.5, -4), (-21.5, 4))
            Line((-21.5, 4), (20, 4))
            Line((20, 4), (20, 4.291900756))
            ThreePointArc((20, 4.291900756), (20.73593095, 4.07365329), (21.5, 4))
            Line((21.5, 4), (21.5, -4))
            ThreePointArc((21.5, -4), (20.73593095, -4.07365329), (20, -4.291900756))
            Line((20, -4.291900756), (20, -4))
            Line((20, -4), (-21.5, -4))
        make_face(mode=Mode.SUBTRACT)
    # profile 2 of 3: a face of its own
    with BuildSketch(Plane(origin=(0, 14, 0), x_dir=(1, 0, 0), z_dir=(0, 1, 0))):
        with BuildLine():
            Line((20, 4.291900756), (20, 4))
            Line((20, 4), (21.5, 4))
            ThreePointArc((21.5, 4), (20.73593095, 4.07365329), (20, 4.291900756))
        make_face()
    # profile 3 of 3: a face of its own
    with BuildSketch(Plane(origin=(0, 14, 0), x_dir=(1, 0, 0), z_dir=(0, 1, 0))):
        with BuildLine():
            Line((21.5, -4), (20, -4))
            Line((20, -4), (20, -4.291900756))
            ThreePointArc((20, -4.291900756), (20.73593095, -4.07365329), (21.5, -4))
        make_face()
    extrude(amount=-CUT_EXTRUDE11_DEPTH, mode=Mode.SUBTRACT)


solid = part.part
